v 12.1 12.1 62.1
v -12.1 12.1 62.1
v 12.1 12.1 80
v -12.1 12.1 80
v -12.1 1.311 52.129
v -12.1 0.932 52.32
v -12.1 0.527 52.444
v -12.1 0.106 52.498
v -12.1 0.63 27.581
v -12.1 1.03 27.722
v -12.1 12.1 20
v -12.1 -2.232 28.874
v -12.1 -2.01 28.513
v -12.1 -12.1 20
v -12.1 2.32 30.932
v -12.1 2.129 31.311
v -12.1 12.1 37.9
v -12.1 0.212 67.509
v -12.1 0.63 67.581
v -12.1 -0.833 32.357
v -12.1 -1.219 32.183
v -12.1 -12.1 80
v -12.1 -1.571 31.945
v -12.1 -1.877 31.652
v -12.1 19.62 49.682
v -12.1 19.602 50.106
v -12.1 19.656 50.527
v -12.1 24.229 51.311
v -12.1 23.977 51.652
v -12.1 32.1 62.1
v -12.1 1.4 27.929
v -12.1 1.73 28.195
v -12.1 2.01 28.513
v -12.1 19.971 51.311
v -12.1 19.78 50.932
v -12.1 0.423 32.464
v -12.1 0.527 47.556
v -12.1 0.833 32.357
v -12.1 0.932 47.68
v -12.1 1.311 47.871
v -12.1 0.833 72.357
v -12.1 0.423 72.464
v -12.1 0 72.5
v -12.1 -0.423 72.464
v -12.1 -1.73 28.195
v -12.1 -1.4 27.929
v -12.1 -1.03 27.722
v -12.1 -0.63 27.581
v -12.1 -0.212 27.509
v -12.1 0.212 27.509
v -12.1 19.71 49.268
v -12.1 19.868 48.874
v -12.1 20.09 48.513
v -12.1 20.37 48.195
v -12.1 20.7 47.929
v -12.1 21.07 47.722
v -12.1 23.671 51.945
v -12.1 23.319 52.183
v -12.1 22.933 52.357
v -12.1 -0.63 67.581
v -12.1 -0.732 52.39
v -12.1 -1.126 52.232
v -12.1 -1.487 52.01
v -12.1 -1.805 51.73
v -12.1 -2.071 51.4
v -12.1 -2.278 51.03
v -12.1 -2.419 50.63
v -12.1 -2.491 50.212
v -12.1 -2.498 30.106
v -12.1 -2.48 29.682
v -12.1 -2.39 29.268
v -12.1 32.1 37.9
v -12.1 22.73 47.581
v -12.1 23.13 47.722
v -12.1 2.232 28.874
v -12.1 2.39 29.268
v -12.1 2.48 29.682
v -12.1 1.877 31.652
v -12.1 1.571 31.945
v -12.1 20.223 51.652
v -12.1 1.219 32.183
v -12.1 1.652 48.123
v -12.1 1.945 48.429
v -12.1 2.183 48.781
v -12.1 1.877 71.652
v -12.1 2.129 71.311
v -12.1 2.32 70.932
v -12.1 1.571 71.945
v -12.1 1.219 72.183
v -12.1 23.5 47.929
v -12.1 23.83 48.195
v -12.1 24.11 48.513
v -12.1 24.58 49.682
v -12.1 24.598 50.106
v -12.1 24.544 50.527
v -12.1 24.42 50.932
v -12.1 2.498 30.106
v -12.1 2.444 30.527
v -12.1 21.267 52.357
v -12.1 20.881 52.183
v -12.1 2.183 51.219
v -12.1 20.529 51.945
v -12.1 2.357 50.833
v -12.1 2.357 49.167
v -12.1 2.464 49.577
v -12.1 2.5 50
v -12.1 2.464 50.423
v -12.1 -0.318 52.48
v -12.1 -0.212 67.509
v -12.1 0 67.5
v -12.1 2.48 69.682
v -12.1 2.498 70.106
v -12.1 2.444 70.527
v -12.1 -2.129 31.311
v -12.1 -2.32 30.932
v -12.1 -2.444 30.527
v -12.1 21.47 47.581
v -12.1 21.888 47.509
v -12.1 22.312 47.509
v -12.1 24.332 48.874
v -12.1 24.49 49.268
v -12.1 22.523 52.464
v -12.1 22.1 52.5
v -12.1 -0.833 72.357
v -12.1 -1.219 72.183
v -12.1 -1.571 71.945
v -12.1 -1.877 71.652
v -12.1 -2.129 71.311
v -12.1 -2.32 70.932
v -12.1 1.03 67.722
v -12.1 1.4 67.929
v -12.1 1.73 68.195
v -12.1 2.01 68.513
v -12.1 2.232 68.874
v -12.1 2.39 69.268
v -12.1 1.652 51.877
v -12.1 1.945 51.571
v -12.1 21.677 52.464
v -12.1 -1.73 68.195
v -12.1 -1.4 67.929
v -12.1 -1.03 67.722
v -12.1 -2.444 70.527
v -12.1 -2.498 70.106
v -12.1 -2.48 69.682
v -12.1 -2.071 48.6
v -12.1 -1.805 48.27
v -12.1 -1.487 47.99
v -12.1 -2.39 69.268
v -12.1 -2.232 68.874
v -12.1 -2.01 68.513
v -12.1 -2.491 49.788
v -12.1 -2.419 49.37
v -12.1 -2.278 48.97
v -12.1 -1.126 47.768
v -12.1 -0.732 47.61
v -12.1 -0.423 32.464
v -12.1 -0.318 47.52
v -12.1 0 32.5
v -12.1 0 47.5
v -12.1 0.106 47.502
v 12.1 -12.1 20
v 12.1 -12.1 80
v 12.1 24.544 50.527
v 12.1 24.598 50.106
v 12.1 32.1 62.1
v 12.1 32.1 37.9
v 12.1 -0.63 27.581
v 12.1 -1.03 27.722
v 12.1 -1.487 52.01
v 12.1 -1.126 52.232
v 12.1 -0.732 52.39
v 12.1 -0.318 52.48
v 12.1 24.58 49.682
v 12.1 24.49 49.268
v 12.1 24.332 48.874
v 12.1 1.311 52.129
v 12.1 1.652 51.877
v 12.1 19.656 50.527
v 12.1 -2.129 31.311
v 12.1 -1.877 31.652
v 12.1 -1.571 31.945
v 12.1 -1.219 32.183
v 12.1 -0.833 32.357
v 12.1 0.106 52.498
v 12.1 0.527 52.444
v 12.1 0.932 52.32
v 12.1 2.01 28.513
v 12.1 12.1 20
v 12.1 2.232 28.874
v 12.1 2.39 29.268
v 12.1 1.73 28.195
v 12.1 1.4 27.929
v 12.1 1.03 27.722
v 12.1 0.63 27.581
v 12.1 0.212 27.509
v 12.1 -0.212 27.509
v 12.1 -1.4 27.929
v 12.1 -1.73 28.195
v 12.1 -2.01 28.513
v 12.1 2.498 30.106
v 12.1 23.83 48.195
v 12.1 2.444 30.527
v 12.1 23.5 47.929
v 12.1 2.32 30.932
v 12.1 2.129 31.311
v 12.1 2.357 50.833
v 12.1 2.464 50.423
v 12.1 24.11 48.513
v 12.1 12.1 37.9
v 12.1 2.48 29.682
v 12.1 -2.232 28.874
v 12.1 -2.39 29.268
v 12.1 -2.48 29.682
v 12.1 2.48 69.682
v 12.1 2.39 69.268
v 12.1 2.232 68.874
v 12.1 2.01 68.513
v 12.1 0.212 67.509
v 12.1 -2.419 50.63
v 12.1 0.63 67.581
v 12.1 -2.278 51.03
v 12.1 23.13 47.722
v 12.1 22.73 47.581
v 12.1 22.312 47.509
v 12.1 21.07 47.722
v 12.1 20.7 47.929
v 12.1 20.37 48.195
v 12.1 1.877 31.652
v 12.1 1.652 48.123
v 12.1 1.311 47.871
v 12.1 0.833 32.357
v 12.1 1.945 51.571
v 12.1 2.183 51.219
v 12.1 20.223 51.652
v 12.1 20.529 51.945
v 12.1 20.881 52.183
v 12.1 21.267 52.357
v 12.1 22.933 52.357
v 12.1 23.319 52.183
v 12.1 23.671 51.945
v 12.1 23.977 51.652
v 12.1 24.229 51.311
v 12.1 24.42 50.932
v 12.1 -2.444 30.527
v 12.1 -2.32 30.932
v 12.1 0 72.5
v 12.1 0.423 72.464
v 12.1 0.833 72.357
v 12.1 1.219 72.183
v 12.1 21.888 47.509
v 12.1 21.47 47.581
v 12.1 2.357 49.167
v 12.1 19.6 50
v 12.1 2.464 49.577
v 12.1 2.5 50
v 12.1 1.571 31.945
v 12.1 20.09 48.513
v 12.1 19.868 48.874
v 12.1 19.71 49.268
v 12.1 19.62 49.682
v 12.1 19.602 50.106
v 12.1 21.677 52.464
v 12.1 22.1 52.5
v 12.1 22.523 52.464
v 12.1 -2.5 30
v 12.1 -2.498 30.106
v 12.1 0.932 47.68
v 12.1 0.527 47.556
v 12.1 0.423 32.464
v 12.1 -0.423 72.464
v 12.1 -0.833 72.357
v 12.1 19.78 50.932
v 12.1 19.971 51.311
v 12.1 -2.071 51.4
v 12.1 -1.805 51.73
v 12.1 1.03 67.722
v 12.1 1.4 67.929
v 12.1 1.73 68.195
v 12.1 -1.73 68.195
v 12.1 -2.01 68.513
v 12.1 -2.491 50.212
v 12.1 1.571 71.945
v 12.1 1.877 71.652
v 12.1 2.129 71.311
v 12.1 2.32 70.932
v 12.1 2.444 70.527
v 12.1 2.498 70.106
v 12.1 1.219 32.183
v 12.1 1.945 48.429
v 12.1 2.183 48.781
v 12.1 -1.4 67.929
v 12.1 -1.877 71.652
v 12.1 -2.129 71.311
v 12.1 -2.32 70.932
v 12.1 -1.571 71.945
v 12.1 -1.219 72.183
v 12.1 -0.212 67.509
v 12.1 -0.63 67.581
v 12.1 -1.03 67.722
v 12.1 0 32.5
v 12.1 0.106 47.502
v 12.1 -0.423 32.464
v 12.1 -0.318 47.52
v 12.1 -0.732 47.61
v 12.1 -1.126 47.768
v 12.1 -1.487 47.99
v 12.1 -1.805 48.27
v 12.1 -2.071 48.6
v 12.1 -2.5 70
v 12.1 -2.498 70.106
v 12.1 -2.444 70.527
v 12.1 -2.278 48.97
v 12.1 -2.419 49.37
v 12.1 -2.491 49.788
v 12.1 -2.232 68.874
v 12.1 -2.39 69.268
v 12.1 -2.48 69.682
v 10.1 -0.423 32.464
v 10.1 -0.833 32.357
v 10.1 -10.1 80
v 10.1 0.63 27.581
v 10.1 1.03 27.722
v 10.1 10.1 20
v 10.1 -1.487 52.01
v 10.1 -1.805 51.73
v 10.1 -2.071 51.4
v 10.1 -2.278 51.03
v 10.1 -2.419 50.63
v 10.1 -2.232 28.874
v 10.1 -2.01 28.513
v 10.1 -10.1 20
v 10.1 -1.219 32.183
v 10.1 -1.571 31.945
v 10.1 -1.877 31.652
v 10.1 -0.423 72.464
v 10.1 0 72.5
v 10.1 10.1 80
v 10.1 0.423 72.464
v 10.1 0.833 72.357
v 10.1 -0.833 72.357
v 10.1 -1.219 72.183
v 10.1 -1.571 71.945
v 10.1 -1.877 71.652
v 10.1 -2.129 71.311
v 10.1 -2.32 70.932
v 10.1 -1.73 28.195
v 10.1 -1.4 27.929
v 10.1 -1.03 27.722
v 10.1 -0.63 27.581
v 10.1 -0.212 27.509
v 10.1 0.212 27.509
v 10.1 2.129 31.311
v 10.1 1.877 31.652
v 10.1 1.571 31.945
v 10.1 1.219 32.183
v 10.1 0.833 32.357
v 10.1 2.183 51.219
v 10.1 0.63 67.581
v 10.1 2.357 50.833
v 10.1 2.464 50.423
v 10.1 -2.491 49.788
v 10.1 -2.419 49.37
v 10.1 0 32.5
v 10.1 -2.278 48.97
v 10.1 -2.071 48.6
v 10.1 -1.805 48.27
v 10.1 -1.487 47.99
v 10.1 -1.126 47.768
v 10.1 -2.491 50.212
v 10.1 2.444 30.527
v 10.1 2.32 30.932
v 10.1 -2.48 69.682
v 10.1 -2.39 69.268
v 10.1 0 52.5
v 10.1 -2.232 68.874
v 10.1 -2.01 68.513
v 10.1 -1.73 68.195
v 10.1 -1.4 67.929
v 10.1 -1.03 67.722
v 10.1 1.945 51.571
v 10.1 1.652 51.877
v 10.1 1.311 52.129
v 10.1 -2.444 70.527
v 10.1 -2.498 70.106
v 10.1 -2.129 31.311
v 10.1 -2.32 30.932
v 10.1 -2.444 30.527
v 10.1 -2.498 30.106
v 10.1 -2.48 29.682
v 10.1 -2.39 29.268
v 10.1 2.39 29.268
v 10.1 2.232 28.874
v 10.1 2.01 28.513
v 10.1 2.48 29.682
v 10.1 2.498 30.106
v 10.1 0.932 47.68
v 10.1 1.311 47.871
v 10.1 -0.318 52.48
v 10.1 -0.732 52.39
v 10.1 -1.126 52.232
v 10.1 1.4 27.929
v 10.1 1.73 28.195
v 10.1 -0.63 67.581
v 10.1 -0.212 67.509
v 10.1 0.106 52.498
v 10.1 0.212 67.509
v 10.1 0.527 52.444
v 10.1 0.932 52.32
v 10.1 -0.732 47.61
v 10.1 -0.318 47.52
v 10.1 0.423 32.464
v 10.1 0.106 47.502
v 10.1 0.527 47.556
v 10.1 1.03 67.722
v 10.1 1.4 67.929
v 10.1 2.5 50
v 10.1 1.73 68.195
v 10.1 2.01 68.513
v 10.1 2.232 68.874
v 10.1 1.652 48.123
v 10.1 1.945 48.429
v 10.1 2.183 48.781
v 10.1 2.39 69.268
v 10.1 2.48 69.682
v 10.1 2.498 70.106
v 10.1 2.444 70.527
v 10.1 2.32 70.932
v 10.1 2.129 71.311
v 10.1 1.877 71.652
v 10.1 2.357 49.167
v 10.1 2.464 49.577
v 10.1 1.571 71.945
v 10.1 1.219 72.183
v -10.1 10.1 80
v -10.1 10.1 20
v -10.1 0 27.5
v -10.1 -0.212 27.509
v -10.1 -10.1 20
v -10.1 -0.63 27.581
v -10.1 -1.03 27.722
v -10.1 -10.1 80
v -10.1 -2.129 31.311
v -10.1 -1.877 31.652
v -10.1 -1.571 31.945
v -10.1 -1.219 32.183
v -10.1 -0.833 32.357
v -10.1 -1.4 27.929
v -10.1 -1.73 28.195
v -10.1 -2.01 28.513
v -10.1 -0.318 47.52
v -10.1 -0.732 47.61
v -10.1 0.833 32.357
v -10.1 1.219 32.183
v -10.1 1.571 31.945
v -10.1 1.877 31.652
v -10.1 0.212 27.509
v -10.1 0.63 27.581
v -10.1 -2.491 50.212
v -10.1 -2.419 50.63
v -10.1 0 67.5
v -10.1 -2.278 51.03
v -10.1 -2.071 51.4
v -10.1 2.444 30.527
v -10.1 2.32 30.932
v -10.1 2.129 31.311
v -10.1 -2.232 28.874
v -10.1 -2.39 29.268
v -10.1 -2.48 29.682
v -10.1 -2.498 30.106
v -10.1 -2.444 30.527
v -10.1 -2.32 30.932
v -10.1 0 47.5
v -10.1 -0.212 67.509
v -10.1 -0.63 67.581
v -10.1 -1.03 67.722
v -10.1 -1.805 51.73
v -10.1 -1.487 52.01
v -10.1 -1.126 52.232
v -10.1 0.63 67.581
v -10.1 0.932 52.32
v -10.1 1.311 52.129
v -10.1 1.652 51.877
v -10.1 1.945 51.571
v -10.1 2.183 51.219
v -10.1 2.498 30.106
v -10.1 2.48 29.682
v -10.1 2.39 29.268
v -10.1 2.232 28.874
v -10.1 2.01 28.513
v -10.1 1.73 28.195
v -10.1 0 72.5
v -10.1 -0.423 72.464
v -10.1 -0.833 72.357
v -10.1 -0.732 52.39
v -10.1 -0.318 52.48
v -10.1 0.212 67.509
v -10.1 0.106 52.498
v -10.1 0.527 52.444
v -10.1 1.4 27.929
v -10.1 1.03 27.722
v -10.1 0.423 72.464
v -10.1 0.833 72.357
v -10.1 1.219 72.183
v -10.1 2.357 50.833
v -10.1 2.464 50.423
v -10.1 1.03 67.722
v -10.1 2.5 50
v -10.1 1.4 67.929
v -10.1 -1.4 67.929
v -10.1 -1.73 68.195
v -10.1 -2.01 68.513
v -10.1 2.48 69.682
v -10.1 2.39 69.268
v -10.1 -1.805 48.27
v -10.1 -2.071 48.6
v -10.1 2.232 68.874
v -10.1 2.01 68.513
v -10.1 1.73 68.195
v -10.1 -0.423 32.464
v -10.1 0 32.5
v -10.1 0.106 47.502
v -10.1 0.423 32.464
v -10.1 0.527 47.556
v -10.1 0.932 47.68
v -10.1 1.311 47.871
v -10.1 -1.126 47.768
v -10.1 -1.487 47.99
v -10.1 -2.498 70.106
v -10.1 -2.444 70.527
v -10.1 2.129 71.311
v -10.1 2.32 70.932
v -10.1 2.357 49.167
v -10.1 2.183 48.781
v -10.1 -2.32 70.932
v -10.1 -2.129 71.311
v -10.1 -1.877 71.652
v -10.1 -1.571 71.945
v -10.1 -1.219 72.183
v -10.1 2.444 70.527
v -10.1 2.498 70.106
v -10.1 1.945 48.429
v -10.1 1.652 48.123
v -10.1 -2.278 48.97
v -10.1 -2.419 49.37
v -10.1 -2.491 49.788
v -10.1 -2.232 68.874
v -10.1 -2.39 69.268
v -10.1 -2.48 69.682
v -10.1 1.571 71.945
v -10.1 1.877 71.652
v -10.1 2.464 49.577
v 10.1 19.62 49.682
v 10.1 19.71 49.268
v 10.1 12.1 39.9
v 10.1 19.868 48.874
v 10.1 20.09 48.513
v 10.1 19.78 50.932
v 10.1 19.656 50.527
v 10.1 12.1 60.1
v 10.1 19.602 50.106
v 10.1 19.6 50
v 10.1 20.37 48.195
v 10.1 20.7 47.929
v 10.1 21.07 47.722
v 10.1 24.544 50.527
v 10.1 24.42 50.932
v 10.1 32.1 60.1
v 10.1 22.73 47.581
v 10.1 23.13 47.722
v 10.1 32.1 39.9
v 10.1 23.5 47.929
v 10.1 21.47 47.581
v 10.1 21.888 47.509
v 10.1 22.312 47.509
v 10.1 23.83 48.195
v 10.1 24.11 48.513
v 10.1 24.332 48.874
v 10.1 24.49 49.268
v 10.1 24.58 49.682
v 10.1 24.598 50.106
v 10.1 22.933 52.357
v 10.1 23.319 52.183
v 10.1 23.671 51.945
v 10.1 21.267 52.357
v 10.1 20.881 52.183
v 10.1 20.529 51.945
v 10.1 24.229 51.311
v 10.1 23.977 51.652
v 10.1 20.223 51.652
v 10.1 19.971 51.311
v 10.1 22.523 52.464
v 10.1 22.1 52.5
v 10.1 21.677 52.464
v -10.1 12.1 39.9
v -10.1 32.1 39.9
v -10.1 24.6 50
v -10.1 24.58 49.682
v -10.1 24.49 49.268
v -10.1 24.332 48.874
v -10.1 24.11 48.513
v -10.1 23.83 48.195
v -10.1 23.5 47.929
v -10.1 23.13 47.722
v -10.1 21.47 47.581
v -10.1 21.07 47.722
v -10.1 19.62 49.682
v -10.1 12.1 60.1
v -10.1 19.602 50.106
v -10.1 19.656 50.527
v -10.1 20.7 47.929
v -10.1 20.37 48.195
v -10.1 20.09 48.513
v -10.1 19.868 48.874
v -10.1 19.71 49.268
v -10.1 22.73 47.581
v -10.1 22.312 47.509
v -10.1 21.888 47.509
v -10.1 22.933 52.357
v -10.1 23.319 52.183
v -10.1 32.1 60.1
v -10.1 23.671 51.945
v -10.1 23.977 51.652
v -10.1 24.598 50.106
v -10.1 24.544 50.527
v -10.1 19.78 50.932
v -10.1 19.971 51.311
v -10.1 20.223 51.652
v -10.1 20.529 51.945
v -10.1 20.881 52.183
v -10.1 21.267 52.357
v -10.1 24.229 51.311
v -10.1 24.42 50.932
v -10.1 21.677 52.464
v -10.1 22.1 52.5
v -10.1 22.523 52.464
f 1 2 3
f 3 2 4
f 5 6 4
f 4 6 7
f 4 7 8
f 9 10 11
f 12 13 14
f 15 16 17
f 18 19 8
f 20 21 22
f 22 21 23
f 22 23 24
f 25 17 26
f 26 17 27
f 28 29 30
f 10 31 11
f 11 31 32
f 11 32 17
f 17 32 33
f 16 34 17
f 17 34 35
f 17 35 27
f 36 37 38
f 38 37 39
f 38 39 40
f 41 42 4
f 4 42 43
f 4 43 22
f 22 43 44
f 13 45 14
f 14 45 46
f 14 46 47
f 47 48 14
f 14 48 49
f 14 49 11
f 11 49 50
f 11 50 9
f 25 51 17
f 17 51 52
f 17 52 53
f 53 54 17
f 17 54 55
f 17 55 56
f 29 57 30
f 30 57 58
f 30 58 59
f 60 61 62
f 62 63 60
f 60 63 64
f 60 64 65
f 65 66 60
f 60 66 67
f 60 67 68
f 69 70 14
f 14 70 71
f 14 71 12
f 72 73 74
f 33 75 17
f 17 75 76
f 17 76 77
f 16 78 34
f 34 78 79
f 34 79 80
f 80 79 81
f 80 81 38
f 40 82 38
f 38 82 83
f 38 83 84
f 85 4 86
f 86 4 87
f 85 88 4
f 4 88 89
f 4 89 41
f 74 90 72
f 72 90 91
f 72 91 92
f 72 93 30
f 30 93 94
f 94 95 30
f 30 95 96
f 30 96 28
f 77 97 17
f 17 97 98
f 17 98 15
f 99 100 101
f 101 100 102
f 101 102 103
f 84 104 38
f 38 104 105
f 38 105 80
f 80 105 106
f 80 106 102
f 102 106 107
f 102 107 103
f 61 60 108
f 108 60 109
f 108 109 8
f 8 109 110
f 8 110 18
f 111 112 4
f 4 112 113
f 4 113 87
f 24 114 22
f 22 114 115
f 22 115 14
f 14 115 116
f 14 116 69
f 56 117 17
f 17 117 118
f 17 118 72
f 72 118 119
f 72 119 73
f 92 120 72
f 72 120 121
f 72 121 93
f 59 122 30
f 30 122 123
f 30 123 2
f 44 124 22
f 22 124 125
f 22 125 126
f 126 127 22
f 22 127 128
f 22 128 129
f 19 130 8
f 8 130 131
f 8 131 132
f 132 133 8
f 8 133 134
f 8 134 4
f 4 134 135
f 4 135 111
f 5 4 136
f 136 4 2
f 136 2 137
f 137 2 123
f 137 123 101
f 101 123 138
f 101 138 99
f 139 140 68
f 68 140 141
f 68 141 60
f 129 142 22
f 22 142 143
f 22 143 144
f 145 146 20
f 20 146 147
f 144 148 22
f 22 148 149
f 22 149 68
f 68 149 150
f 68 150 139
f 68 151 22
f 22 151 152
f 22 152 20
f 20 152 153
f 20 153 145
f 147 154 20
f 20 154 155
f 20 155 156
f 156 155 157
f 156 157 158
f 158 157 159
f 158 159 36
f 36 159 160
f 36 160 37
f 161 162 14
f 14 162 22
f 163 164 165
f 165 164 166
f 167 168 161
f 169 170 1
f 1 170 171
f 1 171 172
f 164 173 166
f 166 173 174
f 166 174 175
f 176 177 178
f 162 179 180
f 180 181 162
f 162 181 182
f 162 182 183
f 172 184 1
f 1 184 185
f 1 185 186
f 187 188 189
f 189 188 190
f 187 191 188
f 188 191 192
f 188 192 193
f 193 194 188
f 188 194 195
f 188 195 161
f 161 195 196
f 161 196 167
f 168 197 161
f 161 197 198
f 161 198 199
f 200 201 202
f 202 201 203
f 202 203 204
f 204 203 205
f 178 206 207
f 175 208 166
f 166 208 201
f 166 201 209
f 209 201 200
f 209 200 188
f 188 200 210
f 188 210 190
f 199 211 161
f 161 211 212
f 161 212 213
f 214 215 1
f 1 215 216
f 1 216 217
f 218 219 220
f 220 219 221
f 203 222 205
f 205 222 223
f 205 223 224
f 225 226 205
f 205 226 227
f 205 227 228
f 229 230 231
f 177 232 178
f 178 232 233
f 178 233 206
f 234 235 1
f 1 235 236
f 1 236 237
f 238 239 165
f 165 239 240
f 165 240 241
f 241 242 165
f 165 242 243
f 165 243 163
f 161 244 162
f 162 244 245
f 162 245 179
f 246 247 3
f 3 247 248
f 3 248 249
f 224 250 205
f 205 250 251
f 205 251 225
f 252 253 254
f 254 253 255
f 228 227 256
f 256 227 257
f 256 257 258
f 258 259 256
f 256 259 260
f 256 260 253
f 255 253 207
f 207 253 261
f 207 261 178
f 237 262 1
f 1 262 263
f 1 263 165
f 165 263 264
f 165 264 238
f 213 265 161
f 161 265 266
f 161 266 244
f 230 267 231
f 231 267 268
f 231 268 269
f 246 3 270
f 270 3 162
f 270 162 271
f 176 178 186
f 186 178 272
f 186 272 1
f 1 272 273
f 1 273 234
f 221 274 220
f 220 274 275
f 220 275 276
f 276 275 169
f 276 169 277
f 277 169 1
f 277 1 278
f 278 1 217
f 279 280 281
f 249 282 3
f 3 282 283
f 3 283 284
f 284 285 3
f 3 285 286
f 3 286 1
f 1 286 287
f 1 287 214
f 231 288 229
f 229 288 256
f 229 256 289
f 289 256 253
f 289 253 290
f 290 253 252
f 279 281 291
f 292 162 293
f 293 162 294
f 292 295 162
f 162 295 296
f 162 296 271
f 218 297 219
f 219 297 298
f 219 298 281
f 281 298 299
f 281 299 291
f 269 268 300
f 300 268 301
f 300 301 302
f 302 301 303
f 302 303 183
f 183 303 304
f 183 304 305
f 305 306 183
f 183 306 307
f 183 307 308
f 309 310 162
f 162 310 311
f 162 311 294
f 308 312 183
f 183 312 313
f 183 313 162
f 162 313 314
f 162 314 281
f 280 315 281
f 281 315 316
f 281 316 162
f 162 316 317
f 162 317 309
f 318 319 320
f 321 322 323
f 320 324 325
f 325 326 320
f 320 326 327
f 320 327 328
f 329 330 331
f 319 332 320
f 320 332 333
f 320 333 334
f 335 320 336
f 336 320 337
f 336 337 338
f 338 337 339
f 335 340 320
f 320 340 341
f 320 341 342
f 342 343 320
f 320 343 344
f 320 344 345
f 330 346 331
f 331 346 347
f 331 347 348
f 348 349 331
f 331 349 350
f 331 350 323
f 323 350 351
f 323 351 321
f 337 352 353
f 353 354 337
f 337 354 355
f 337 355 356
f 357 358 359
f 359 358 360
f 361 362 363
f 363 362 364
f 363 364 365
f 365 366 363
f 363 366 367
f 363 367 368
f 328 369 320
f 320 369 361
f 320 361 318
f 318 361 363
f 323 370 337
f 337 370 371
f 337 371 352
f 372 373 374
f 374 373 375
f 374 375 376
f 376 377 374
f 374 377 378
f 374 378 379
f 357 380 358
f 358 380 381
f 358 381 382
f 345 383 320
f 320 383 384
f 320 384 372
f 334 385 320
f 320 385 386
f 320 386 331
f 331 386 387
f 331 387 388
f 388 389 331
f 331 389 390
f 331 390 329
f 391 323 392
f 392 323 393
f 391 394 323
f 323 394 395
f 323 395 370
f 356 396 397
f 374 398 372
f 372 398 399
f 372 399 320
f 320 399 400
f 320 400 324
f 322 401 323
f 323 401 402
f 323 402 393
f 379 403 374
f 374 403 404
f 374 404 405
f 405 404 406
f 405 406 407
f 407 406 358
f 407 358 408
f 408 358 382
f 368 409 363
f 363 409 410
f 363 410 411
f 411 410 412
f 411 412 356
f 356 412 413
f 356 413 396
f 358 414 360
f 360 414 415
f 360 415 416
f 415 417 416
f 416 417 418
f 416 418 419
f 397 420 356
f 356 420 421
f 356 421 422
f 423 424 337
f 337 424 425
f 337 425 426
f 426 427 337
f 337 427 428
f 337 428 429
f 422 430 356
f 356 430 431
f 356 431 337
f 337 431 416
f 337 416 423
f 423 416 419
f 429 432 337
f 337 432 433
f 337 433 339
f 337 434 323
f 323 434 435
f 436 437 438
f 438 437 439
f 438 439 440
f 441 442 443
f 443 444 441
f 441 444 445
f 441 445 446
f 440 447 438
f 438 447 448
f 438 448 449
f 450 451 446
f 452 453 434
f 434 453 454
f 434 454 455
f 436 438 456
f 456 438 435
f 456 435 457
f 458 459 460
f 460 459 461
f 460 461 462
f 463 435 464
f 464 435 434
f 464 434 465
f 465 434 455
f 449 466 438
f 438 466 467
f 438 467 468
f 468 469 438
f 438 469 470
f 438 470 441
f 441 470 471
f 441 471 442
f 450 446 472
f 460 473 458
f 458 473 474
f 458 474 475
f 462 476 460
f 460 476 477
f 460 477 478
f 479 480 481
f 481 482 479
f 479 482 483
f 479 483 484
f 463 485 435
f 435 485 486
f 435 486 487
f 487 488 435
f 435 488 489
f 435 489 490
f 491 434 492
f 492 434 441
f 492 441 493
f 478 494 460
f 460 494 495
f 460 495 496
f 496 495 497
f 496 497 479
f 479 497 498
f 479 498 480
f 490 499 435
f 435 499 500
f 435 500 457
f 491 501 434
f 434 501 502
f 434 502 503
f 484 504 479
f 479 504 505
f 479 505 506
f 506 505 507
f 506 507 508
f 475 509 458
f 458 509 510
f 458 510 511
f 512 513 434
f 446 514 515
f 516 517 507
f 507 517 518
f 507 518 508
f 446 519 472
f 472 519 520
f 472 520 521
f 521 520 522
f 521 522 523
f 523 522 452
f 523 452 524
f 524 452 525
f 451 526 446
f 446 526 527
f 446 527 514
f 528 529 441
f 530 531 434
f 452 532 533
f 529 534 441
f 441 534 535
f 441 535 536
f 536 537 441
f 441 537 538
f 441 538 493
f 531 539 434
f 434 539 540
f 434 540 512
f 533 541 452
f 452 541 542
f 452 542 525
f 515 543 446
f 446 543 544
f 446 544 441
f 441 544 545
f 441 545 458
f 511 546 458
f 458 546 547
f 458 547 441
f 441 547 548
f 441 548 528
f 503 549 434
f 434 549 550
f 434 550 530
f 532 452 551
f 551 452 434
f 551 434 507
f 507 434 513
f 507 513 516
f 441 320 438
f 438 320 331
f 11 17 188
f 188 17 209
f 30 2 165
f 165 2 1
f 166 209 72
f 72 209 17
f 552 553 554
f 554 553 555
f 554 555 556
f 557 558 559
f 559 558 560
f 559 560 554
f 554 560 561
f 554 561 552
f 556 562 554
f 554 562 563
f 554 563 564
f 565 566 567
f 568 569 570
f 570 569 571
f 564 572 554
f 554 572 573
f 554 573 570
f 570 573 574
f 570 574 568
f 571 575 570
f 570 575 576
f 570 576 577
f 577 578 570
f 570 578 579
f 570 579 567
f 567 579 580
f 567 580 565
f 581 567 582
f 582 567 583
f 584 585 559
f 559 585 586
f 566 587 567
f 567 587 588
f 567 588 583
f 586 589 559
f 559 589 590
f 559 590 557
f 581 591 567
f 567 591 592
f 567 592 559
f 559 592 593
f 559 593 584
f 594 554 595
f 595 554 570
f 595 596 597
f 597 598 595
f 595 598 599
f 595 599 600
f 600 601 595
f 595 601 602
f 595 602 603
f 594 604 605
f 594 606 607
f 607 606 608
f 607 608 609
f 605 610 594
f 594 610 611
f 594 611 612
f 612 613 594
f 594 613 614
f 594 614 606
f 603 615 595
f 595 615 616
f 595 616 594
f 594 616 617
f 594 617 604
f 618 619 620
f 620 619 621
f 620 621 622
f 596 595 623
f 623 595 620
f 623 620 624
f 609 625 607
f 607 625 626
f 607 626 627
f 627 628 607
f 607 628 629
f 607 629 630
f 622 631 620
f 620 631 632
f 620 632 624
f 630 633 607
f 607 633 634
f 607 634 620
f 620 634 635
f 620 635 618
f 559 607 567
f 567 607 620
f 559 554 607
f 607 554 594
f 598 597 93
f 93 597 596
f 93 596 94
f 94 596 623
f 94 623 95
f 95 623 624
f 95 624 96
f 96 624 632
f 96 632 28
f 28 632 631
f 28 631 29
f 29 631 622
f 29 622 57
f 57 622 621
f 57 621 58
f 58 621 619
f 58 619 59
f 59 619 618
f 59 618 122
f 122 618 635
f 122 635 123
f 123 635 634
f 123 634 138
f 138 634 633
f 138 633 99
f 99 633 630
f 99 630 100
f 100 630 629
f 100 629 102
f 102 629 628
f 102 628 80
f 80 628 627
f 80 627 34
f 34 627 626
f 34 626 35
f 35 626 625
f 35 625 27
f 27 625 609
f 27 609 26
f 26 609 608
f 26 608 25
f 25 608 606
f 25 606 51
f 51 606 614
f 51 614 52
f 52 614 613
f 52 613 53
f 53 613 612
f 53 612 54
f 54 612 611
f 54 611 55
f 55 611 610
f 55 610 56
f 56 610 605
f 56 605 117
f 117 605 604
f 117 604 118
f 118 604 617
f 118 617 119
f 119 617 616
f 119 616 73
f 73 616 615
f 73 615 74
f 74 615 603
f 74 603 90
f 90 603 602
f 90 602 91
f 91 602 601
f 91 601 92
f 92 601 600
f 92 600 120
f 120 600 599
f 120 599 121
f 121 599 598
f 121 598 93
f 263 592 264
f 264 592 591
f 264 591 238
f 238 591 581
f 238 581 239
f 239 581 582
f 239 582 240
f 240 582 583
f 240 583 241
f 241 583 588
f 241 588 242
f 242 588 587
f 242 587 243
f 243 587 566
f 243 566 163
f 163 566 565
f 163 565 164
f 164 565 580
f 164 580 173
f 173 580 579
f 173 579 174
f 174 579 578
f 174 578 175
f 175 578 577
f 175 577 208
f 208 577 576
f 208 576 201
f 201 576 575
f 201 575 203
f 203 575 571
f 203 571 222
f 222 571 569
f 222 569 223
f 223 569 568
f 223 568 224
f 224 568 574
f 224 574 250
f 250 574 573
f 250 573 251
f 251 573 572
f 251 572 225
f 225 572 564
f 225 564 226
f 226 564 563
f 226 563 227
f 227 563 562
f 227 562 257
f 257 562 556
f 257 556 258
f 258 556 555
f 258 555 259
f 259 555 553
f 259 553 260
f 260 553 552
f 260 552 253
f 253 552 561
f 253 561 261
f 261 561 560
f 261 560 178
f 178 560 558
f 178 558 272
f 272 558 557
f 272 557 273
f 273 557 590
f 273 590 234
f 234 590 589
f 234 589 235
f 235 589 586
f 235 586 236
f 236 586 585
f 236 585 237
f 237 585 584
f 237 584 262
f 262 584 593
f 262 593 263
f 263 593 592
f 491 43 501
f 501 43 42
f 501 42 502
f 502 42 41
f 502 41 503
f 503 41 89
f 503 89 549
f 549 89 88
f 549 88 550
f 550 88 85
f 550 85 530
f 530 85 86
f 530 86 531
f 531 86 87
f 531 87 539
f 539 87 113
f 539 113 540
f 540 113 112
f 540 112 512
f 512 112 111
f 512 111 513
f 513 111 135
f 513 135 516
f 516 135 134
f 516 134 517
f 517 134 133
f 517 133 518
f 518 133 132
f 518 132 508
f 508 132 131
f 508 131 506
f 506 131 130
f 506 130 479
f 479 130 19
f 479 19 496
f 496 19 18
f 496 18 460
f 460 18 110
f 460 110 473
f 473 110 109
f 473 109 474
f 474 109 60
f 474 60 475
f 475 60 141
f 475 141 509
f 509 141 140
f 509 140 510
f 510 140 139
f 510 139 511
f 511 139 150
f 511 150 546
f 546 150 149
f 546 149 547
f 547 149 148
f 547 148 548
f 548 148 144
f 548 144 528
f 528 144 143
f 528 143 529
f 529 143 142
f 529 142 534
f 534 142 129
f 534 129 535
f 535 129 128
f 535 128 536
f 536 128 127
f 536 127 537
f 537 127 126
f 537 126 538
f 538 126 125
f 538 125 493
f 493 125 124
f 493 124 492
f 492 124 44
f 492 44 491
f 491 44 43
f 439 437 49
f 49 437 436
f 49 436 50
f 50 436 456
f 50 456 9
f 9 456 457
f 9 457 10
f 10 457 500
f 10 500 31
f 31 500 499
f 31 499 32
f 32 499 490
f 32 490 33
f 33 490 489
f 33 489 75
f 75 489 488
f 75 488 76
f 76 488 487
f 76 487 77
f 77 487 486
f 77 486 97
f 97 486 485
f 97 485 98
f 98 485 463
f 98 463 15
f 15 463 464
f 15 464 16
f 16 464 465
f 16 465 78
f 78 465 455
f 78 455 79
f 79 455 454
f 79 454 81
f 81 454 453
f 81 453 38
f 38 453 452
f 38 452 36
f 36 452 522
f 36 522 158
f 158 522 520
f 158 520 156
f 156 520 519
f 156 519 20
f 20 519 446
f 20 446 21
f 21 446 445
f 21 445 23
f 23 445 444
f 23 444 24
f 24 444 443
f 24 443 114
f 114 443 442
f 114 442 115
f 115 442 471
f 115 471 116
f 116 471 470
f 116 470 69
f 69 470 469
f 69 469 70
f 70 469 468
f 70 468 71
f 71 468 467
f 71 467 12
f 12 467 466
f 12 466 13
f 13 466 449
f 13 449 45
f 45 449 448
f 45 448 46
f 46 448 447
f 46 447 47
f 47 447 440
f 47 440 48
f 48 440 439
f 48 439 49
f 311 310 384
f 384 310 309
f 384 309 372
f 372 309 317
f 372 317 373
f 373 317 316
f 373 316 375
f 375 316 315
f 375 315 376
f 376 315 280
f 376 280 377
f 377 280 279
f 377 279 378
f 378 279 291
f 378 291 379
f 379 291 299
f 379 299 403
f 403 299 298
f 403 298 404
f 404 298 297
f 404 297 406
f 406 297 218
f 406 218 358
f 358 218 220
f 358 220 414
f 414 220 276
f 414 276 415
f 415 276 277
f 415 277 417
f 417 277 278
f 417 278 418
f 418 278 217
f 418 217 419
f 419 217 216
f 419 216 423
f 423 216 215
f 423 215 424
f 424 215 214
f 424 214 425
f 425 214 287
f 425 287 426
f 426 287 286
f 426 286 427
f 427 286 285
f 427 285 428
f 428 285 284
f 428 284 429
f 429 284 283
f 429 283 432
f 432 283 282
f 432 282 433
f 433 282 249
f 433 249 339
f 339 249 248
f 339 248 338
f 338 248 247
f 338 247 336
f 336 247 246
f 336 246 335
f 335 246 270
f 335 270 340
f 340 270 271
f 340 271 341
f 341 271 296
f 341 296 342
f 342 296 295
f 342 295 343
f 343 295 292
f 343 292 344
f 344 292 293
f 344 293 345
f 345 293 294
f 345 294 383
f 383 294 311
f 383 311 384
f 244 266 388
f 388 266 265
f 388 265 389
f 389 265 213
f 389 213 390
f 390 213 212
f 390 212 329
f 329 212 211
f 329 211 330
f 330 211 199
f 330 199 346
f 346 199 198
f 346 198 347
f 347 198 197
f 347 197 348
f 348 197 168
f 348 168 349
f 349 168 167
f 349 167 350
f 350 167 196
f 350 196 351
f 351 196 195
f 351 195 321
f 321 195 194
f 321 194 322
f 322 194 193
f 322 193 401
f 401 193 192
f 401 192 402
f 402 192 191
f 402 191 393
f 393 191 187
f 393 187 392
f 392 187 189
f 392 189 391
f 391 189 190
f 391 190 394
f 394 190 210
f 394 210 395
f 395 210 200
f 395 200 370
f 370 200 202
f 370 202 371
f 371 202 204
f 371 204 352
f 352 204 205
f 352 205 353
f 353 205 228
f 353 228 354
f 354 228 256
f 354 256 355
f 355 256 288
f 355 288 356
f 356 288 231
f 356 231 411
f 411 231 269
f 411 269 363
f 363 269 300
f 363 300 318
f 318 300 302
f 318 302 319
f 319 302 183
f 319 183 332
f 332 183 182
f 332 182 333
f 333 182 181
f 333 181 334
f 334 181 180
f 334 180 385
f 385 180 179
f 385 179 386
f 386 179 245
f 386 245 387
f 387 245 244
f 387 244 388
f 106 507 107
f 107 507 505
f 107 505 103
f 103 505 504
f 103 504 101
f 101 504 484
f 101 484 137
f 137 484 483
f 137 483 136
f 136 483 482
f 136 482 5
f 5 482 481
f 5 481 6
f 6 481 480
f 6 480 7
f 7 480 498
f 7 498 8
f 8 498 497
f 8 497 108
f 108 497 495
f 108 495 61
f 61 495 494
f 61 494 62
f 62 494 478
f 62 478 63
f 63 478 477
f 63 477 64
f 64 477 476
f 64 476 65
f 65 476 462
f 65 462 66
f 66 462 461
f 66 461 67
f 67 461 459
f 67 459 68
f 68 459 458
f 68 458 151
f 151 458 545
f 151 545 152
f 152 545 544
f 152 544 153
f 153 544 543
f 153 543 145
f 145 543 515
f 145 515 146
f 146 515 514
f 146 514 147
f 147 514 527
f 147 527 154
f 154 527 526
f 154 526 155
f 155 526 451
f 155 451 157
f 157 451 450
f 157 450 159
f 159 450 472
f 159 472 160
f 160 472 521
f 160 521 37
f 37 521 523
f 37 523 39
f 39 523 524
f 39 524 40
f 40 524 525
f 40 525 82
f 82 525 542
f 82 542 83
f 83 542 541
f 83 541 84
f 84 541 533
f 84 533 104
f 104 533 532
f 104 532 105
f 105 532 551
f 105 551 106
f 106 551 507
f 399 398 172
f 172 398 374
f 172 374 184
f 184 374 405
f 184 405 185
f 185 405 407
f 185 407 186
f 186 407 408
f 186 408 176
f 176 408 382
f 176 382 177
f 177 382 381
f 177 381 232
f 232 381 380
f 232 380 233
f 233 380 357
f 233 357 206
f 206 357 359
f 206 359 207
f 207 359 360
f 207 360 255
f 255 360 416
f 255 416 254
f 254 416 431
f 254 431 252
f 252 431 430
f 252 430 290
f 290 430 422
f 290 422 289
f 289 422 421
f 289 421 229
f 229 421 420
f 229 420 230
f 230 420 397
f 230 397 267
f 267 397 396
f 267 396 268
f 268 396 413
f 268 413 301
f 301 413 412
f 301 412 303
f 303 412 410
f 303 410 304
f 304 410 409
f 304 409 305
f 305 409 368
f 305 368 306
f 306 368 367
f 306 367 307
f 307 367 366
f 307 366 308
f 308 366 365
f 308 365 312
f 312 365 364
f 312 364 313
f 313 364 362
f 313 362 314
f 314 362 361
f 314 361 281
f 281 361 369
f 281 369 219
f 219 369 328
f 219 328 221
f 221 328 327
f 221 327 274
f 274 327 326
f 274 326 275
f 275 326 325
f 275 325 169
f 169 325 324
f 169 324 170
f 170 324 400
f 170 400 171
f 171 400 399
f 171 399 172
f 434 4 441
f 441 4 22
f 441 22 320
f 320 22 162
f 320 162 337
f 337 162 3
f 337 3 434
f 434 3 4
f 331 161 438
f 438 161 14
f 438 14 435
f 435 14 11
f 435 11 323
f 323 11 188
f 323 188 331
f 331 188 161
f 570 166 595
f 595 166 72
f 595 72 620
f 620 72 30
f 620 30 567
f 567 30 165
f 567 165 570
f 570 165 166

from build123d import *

# Parameters (mm, degrees)
SKETCH_2_W          = 24.2
SKETCH_2_H          = 24.2
SKETCH_2_W_2        = 20.2
SKETCH_2_H_2        = 20.2
EXTRUDE_4_DEPTH     = 100
SKETCH_6_W          = 24.2
SKETCH_6_H          = 24.2
SKETCH_6_W_2        = 20.2
SKETCH_6_H_2        = 20.2
EXTRUDE_5_DEPTH     = 40
SKETCH_7_R          = 2.5
CUT_EXTRUDE_1_DEPTH = 40
SKETCH_8_R          = 2.5
CUT_EXTRUDE_2_DEPTH = 40
CUT_EXTRUDE_START   = -40
SKETCH_9_W          = 20
SKETCH_9_H          = 24.2
SKETCH_9_R          = 2.5
CUT_EXTRUDE_3_DEPTH = 40
SKETCH_10_W         = 24.2
SKETCH_10_H         = 20
SKETCH_10_R         = 2.5
CUT_EXTRUDE_4_DEPTH = 40


with BuildPart() as part:
    # 草图2 → 凸台-拉伸4 (new body)
    with BuildSketch(Plane.XY):
        Rectangle(SKETCH_2_W, SKETCH_2_H)
        Rectangle(SKETCH_2_W_2, SKETCH_2_H_2, mode=Mode.SUBTRACT)
    extrude(amount=EXTRUDE_4_DEPTH)

    # 草图6 → 凸台-拉伸5 (add)
    with BuildSketch(Plane(origin=(0, 12.1, 0), x_dir=(1, 0, 0), z_dir=(0, 1, 0))):
        with Locations((0, -50)):
            Rectangle(SKETCH_6_W, SKETCH_6_H)
        with Locations((0, -50)):
            Rectangle(SKETCH_6_W_2, SKETCH_6_H_2, mode=Mode.SUBTRACT)
    extrude(amount=EXTRUDE_5_DEPTH)

    # 草图7 → 切除-拉伸1 (cut)
    with BuildSketch(Plane.ZY.offset(12.1)):
        with Locations((10, 0)):
            Circle(SKETCH_7_R)
        with Locations((30, 0)):
            Circle(SKETCH_7_R)
        with Locations(Location((90, 0, 0), (0, 0, 180))):
            Circle(SKETCH_7_R)
        with Locations(Location((70, 0, 0), (0, 0, 180))):
            Circle(SKETCH_7_R)
        with Locations((50, 42.1)):
            Circle(SKETCH_7_R)
        with Locations((50, 22.1)):
            Circle(SKETCH_7_R)
    extrude(amount=-CUT_EXTRUDE_1_DEPTH, mode=Mode.SUBTRACT)

    # 草图8 → 切除-拉伸2 (cut)
    with BuildSketch(Plane(origin=(12.1, 0, 0), x_dir=(0, 0, -1), z_dir=(1, 0, 0))):
        with Locations((-50, 0)):
            Circle(SKETCH_8_R)
    extrude(amount=-CUT_EXTRUDE_2_DEPTH, mode=Mode.SUBTRACT)

    # 草图9 → 切除-拉伸3 (cut)
    # profile 1 of 2: a face of its own
    with BuildSketch(Plane(origin=(12.1, 0, 0), x_dir=(0, 0, -1), z_dir=(1, 0, 0)).offset(CUT_EXTRUDE_START)):
        with Locations((-10, 0)):
            Rectangle(SKETCH_9_W, SKETCH_9_H)
        with Locations((-10, 0)):
            Circle(SKETCH_9_R, mode=Mode.SUBTRACT)
    # profile 2 of 2: a face of its own
    with BuildSketch(Plane(origin=(12.1, 0, 0), x_dir=(0, 0, -1), z_dir=(1, 0, 0)).offset(CUT_EXTRUDE_START)):
        with Locations((-90, 0)):
            Rectangle(SKETCH_9_W, SKETCH_9_H)
        with Locations((-90, 0)):
            Circle(SKETCH_9_R, mode=Mode.SUBTRACT)
    extrude(amount=CUT_EXTRUDE_3_DEPTH, mode=Mode.SUBTRACT)

    # 草图10 → 切除-拉伸4 (cut)
    with BuildSketch(Plane(origin=(12.1, 0, 0), x_dir=(0, 0, -1), z_dir=(1, 0, 0)).offset(CUT_EXTRUDE_START)):
        with Locations((-50, 42.1)):
            Rectangle(SKETCH_10_W, SKETCH_10_H)
        with Locations((-50, 42.1)):
            Circle(SKETCH_10_R, mode=Mode.SUBTRACT)
    extrude(amount=CUT_EXTRUDE_4_DEPTH, mode=Mode.SUBTRACT)


solid = part.part
